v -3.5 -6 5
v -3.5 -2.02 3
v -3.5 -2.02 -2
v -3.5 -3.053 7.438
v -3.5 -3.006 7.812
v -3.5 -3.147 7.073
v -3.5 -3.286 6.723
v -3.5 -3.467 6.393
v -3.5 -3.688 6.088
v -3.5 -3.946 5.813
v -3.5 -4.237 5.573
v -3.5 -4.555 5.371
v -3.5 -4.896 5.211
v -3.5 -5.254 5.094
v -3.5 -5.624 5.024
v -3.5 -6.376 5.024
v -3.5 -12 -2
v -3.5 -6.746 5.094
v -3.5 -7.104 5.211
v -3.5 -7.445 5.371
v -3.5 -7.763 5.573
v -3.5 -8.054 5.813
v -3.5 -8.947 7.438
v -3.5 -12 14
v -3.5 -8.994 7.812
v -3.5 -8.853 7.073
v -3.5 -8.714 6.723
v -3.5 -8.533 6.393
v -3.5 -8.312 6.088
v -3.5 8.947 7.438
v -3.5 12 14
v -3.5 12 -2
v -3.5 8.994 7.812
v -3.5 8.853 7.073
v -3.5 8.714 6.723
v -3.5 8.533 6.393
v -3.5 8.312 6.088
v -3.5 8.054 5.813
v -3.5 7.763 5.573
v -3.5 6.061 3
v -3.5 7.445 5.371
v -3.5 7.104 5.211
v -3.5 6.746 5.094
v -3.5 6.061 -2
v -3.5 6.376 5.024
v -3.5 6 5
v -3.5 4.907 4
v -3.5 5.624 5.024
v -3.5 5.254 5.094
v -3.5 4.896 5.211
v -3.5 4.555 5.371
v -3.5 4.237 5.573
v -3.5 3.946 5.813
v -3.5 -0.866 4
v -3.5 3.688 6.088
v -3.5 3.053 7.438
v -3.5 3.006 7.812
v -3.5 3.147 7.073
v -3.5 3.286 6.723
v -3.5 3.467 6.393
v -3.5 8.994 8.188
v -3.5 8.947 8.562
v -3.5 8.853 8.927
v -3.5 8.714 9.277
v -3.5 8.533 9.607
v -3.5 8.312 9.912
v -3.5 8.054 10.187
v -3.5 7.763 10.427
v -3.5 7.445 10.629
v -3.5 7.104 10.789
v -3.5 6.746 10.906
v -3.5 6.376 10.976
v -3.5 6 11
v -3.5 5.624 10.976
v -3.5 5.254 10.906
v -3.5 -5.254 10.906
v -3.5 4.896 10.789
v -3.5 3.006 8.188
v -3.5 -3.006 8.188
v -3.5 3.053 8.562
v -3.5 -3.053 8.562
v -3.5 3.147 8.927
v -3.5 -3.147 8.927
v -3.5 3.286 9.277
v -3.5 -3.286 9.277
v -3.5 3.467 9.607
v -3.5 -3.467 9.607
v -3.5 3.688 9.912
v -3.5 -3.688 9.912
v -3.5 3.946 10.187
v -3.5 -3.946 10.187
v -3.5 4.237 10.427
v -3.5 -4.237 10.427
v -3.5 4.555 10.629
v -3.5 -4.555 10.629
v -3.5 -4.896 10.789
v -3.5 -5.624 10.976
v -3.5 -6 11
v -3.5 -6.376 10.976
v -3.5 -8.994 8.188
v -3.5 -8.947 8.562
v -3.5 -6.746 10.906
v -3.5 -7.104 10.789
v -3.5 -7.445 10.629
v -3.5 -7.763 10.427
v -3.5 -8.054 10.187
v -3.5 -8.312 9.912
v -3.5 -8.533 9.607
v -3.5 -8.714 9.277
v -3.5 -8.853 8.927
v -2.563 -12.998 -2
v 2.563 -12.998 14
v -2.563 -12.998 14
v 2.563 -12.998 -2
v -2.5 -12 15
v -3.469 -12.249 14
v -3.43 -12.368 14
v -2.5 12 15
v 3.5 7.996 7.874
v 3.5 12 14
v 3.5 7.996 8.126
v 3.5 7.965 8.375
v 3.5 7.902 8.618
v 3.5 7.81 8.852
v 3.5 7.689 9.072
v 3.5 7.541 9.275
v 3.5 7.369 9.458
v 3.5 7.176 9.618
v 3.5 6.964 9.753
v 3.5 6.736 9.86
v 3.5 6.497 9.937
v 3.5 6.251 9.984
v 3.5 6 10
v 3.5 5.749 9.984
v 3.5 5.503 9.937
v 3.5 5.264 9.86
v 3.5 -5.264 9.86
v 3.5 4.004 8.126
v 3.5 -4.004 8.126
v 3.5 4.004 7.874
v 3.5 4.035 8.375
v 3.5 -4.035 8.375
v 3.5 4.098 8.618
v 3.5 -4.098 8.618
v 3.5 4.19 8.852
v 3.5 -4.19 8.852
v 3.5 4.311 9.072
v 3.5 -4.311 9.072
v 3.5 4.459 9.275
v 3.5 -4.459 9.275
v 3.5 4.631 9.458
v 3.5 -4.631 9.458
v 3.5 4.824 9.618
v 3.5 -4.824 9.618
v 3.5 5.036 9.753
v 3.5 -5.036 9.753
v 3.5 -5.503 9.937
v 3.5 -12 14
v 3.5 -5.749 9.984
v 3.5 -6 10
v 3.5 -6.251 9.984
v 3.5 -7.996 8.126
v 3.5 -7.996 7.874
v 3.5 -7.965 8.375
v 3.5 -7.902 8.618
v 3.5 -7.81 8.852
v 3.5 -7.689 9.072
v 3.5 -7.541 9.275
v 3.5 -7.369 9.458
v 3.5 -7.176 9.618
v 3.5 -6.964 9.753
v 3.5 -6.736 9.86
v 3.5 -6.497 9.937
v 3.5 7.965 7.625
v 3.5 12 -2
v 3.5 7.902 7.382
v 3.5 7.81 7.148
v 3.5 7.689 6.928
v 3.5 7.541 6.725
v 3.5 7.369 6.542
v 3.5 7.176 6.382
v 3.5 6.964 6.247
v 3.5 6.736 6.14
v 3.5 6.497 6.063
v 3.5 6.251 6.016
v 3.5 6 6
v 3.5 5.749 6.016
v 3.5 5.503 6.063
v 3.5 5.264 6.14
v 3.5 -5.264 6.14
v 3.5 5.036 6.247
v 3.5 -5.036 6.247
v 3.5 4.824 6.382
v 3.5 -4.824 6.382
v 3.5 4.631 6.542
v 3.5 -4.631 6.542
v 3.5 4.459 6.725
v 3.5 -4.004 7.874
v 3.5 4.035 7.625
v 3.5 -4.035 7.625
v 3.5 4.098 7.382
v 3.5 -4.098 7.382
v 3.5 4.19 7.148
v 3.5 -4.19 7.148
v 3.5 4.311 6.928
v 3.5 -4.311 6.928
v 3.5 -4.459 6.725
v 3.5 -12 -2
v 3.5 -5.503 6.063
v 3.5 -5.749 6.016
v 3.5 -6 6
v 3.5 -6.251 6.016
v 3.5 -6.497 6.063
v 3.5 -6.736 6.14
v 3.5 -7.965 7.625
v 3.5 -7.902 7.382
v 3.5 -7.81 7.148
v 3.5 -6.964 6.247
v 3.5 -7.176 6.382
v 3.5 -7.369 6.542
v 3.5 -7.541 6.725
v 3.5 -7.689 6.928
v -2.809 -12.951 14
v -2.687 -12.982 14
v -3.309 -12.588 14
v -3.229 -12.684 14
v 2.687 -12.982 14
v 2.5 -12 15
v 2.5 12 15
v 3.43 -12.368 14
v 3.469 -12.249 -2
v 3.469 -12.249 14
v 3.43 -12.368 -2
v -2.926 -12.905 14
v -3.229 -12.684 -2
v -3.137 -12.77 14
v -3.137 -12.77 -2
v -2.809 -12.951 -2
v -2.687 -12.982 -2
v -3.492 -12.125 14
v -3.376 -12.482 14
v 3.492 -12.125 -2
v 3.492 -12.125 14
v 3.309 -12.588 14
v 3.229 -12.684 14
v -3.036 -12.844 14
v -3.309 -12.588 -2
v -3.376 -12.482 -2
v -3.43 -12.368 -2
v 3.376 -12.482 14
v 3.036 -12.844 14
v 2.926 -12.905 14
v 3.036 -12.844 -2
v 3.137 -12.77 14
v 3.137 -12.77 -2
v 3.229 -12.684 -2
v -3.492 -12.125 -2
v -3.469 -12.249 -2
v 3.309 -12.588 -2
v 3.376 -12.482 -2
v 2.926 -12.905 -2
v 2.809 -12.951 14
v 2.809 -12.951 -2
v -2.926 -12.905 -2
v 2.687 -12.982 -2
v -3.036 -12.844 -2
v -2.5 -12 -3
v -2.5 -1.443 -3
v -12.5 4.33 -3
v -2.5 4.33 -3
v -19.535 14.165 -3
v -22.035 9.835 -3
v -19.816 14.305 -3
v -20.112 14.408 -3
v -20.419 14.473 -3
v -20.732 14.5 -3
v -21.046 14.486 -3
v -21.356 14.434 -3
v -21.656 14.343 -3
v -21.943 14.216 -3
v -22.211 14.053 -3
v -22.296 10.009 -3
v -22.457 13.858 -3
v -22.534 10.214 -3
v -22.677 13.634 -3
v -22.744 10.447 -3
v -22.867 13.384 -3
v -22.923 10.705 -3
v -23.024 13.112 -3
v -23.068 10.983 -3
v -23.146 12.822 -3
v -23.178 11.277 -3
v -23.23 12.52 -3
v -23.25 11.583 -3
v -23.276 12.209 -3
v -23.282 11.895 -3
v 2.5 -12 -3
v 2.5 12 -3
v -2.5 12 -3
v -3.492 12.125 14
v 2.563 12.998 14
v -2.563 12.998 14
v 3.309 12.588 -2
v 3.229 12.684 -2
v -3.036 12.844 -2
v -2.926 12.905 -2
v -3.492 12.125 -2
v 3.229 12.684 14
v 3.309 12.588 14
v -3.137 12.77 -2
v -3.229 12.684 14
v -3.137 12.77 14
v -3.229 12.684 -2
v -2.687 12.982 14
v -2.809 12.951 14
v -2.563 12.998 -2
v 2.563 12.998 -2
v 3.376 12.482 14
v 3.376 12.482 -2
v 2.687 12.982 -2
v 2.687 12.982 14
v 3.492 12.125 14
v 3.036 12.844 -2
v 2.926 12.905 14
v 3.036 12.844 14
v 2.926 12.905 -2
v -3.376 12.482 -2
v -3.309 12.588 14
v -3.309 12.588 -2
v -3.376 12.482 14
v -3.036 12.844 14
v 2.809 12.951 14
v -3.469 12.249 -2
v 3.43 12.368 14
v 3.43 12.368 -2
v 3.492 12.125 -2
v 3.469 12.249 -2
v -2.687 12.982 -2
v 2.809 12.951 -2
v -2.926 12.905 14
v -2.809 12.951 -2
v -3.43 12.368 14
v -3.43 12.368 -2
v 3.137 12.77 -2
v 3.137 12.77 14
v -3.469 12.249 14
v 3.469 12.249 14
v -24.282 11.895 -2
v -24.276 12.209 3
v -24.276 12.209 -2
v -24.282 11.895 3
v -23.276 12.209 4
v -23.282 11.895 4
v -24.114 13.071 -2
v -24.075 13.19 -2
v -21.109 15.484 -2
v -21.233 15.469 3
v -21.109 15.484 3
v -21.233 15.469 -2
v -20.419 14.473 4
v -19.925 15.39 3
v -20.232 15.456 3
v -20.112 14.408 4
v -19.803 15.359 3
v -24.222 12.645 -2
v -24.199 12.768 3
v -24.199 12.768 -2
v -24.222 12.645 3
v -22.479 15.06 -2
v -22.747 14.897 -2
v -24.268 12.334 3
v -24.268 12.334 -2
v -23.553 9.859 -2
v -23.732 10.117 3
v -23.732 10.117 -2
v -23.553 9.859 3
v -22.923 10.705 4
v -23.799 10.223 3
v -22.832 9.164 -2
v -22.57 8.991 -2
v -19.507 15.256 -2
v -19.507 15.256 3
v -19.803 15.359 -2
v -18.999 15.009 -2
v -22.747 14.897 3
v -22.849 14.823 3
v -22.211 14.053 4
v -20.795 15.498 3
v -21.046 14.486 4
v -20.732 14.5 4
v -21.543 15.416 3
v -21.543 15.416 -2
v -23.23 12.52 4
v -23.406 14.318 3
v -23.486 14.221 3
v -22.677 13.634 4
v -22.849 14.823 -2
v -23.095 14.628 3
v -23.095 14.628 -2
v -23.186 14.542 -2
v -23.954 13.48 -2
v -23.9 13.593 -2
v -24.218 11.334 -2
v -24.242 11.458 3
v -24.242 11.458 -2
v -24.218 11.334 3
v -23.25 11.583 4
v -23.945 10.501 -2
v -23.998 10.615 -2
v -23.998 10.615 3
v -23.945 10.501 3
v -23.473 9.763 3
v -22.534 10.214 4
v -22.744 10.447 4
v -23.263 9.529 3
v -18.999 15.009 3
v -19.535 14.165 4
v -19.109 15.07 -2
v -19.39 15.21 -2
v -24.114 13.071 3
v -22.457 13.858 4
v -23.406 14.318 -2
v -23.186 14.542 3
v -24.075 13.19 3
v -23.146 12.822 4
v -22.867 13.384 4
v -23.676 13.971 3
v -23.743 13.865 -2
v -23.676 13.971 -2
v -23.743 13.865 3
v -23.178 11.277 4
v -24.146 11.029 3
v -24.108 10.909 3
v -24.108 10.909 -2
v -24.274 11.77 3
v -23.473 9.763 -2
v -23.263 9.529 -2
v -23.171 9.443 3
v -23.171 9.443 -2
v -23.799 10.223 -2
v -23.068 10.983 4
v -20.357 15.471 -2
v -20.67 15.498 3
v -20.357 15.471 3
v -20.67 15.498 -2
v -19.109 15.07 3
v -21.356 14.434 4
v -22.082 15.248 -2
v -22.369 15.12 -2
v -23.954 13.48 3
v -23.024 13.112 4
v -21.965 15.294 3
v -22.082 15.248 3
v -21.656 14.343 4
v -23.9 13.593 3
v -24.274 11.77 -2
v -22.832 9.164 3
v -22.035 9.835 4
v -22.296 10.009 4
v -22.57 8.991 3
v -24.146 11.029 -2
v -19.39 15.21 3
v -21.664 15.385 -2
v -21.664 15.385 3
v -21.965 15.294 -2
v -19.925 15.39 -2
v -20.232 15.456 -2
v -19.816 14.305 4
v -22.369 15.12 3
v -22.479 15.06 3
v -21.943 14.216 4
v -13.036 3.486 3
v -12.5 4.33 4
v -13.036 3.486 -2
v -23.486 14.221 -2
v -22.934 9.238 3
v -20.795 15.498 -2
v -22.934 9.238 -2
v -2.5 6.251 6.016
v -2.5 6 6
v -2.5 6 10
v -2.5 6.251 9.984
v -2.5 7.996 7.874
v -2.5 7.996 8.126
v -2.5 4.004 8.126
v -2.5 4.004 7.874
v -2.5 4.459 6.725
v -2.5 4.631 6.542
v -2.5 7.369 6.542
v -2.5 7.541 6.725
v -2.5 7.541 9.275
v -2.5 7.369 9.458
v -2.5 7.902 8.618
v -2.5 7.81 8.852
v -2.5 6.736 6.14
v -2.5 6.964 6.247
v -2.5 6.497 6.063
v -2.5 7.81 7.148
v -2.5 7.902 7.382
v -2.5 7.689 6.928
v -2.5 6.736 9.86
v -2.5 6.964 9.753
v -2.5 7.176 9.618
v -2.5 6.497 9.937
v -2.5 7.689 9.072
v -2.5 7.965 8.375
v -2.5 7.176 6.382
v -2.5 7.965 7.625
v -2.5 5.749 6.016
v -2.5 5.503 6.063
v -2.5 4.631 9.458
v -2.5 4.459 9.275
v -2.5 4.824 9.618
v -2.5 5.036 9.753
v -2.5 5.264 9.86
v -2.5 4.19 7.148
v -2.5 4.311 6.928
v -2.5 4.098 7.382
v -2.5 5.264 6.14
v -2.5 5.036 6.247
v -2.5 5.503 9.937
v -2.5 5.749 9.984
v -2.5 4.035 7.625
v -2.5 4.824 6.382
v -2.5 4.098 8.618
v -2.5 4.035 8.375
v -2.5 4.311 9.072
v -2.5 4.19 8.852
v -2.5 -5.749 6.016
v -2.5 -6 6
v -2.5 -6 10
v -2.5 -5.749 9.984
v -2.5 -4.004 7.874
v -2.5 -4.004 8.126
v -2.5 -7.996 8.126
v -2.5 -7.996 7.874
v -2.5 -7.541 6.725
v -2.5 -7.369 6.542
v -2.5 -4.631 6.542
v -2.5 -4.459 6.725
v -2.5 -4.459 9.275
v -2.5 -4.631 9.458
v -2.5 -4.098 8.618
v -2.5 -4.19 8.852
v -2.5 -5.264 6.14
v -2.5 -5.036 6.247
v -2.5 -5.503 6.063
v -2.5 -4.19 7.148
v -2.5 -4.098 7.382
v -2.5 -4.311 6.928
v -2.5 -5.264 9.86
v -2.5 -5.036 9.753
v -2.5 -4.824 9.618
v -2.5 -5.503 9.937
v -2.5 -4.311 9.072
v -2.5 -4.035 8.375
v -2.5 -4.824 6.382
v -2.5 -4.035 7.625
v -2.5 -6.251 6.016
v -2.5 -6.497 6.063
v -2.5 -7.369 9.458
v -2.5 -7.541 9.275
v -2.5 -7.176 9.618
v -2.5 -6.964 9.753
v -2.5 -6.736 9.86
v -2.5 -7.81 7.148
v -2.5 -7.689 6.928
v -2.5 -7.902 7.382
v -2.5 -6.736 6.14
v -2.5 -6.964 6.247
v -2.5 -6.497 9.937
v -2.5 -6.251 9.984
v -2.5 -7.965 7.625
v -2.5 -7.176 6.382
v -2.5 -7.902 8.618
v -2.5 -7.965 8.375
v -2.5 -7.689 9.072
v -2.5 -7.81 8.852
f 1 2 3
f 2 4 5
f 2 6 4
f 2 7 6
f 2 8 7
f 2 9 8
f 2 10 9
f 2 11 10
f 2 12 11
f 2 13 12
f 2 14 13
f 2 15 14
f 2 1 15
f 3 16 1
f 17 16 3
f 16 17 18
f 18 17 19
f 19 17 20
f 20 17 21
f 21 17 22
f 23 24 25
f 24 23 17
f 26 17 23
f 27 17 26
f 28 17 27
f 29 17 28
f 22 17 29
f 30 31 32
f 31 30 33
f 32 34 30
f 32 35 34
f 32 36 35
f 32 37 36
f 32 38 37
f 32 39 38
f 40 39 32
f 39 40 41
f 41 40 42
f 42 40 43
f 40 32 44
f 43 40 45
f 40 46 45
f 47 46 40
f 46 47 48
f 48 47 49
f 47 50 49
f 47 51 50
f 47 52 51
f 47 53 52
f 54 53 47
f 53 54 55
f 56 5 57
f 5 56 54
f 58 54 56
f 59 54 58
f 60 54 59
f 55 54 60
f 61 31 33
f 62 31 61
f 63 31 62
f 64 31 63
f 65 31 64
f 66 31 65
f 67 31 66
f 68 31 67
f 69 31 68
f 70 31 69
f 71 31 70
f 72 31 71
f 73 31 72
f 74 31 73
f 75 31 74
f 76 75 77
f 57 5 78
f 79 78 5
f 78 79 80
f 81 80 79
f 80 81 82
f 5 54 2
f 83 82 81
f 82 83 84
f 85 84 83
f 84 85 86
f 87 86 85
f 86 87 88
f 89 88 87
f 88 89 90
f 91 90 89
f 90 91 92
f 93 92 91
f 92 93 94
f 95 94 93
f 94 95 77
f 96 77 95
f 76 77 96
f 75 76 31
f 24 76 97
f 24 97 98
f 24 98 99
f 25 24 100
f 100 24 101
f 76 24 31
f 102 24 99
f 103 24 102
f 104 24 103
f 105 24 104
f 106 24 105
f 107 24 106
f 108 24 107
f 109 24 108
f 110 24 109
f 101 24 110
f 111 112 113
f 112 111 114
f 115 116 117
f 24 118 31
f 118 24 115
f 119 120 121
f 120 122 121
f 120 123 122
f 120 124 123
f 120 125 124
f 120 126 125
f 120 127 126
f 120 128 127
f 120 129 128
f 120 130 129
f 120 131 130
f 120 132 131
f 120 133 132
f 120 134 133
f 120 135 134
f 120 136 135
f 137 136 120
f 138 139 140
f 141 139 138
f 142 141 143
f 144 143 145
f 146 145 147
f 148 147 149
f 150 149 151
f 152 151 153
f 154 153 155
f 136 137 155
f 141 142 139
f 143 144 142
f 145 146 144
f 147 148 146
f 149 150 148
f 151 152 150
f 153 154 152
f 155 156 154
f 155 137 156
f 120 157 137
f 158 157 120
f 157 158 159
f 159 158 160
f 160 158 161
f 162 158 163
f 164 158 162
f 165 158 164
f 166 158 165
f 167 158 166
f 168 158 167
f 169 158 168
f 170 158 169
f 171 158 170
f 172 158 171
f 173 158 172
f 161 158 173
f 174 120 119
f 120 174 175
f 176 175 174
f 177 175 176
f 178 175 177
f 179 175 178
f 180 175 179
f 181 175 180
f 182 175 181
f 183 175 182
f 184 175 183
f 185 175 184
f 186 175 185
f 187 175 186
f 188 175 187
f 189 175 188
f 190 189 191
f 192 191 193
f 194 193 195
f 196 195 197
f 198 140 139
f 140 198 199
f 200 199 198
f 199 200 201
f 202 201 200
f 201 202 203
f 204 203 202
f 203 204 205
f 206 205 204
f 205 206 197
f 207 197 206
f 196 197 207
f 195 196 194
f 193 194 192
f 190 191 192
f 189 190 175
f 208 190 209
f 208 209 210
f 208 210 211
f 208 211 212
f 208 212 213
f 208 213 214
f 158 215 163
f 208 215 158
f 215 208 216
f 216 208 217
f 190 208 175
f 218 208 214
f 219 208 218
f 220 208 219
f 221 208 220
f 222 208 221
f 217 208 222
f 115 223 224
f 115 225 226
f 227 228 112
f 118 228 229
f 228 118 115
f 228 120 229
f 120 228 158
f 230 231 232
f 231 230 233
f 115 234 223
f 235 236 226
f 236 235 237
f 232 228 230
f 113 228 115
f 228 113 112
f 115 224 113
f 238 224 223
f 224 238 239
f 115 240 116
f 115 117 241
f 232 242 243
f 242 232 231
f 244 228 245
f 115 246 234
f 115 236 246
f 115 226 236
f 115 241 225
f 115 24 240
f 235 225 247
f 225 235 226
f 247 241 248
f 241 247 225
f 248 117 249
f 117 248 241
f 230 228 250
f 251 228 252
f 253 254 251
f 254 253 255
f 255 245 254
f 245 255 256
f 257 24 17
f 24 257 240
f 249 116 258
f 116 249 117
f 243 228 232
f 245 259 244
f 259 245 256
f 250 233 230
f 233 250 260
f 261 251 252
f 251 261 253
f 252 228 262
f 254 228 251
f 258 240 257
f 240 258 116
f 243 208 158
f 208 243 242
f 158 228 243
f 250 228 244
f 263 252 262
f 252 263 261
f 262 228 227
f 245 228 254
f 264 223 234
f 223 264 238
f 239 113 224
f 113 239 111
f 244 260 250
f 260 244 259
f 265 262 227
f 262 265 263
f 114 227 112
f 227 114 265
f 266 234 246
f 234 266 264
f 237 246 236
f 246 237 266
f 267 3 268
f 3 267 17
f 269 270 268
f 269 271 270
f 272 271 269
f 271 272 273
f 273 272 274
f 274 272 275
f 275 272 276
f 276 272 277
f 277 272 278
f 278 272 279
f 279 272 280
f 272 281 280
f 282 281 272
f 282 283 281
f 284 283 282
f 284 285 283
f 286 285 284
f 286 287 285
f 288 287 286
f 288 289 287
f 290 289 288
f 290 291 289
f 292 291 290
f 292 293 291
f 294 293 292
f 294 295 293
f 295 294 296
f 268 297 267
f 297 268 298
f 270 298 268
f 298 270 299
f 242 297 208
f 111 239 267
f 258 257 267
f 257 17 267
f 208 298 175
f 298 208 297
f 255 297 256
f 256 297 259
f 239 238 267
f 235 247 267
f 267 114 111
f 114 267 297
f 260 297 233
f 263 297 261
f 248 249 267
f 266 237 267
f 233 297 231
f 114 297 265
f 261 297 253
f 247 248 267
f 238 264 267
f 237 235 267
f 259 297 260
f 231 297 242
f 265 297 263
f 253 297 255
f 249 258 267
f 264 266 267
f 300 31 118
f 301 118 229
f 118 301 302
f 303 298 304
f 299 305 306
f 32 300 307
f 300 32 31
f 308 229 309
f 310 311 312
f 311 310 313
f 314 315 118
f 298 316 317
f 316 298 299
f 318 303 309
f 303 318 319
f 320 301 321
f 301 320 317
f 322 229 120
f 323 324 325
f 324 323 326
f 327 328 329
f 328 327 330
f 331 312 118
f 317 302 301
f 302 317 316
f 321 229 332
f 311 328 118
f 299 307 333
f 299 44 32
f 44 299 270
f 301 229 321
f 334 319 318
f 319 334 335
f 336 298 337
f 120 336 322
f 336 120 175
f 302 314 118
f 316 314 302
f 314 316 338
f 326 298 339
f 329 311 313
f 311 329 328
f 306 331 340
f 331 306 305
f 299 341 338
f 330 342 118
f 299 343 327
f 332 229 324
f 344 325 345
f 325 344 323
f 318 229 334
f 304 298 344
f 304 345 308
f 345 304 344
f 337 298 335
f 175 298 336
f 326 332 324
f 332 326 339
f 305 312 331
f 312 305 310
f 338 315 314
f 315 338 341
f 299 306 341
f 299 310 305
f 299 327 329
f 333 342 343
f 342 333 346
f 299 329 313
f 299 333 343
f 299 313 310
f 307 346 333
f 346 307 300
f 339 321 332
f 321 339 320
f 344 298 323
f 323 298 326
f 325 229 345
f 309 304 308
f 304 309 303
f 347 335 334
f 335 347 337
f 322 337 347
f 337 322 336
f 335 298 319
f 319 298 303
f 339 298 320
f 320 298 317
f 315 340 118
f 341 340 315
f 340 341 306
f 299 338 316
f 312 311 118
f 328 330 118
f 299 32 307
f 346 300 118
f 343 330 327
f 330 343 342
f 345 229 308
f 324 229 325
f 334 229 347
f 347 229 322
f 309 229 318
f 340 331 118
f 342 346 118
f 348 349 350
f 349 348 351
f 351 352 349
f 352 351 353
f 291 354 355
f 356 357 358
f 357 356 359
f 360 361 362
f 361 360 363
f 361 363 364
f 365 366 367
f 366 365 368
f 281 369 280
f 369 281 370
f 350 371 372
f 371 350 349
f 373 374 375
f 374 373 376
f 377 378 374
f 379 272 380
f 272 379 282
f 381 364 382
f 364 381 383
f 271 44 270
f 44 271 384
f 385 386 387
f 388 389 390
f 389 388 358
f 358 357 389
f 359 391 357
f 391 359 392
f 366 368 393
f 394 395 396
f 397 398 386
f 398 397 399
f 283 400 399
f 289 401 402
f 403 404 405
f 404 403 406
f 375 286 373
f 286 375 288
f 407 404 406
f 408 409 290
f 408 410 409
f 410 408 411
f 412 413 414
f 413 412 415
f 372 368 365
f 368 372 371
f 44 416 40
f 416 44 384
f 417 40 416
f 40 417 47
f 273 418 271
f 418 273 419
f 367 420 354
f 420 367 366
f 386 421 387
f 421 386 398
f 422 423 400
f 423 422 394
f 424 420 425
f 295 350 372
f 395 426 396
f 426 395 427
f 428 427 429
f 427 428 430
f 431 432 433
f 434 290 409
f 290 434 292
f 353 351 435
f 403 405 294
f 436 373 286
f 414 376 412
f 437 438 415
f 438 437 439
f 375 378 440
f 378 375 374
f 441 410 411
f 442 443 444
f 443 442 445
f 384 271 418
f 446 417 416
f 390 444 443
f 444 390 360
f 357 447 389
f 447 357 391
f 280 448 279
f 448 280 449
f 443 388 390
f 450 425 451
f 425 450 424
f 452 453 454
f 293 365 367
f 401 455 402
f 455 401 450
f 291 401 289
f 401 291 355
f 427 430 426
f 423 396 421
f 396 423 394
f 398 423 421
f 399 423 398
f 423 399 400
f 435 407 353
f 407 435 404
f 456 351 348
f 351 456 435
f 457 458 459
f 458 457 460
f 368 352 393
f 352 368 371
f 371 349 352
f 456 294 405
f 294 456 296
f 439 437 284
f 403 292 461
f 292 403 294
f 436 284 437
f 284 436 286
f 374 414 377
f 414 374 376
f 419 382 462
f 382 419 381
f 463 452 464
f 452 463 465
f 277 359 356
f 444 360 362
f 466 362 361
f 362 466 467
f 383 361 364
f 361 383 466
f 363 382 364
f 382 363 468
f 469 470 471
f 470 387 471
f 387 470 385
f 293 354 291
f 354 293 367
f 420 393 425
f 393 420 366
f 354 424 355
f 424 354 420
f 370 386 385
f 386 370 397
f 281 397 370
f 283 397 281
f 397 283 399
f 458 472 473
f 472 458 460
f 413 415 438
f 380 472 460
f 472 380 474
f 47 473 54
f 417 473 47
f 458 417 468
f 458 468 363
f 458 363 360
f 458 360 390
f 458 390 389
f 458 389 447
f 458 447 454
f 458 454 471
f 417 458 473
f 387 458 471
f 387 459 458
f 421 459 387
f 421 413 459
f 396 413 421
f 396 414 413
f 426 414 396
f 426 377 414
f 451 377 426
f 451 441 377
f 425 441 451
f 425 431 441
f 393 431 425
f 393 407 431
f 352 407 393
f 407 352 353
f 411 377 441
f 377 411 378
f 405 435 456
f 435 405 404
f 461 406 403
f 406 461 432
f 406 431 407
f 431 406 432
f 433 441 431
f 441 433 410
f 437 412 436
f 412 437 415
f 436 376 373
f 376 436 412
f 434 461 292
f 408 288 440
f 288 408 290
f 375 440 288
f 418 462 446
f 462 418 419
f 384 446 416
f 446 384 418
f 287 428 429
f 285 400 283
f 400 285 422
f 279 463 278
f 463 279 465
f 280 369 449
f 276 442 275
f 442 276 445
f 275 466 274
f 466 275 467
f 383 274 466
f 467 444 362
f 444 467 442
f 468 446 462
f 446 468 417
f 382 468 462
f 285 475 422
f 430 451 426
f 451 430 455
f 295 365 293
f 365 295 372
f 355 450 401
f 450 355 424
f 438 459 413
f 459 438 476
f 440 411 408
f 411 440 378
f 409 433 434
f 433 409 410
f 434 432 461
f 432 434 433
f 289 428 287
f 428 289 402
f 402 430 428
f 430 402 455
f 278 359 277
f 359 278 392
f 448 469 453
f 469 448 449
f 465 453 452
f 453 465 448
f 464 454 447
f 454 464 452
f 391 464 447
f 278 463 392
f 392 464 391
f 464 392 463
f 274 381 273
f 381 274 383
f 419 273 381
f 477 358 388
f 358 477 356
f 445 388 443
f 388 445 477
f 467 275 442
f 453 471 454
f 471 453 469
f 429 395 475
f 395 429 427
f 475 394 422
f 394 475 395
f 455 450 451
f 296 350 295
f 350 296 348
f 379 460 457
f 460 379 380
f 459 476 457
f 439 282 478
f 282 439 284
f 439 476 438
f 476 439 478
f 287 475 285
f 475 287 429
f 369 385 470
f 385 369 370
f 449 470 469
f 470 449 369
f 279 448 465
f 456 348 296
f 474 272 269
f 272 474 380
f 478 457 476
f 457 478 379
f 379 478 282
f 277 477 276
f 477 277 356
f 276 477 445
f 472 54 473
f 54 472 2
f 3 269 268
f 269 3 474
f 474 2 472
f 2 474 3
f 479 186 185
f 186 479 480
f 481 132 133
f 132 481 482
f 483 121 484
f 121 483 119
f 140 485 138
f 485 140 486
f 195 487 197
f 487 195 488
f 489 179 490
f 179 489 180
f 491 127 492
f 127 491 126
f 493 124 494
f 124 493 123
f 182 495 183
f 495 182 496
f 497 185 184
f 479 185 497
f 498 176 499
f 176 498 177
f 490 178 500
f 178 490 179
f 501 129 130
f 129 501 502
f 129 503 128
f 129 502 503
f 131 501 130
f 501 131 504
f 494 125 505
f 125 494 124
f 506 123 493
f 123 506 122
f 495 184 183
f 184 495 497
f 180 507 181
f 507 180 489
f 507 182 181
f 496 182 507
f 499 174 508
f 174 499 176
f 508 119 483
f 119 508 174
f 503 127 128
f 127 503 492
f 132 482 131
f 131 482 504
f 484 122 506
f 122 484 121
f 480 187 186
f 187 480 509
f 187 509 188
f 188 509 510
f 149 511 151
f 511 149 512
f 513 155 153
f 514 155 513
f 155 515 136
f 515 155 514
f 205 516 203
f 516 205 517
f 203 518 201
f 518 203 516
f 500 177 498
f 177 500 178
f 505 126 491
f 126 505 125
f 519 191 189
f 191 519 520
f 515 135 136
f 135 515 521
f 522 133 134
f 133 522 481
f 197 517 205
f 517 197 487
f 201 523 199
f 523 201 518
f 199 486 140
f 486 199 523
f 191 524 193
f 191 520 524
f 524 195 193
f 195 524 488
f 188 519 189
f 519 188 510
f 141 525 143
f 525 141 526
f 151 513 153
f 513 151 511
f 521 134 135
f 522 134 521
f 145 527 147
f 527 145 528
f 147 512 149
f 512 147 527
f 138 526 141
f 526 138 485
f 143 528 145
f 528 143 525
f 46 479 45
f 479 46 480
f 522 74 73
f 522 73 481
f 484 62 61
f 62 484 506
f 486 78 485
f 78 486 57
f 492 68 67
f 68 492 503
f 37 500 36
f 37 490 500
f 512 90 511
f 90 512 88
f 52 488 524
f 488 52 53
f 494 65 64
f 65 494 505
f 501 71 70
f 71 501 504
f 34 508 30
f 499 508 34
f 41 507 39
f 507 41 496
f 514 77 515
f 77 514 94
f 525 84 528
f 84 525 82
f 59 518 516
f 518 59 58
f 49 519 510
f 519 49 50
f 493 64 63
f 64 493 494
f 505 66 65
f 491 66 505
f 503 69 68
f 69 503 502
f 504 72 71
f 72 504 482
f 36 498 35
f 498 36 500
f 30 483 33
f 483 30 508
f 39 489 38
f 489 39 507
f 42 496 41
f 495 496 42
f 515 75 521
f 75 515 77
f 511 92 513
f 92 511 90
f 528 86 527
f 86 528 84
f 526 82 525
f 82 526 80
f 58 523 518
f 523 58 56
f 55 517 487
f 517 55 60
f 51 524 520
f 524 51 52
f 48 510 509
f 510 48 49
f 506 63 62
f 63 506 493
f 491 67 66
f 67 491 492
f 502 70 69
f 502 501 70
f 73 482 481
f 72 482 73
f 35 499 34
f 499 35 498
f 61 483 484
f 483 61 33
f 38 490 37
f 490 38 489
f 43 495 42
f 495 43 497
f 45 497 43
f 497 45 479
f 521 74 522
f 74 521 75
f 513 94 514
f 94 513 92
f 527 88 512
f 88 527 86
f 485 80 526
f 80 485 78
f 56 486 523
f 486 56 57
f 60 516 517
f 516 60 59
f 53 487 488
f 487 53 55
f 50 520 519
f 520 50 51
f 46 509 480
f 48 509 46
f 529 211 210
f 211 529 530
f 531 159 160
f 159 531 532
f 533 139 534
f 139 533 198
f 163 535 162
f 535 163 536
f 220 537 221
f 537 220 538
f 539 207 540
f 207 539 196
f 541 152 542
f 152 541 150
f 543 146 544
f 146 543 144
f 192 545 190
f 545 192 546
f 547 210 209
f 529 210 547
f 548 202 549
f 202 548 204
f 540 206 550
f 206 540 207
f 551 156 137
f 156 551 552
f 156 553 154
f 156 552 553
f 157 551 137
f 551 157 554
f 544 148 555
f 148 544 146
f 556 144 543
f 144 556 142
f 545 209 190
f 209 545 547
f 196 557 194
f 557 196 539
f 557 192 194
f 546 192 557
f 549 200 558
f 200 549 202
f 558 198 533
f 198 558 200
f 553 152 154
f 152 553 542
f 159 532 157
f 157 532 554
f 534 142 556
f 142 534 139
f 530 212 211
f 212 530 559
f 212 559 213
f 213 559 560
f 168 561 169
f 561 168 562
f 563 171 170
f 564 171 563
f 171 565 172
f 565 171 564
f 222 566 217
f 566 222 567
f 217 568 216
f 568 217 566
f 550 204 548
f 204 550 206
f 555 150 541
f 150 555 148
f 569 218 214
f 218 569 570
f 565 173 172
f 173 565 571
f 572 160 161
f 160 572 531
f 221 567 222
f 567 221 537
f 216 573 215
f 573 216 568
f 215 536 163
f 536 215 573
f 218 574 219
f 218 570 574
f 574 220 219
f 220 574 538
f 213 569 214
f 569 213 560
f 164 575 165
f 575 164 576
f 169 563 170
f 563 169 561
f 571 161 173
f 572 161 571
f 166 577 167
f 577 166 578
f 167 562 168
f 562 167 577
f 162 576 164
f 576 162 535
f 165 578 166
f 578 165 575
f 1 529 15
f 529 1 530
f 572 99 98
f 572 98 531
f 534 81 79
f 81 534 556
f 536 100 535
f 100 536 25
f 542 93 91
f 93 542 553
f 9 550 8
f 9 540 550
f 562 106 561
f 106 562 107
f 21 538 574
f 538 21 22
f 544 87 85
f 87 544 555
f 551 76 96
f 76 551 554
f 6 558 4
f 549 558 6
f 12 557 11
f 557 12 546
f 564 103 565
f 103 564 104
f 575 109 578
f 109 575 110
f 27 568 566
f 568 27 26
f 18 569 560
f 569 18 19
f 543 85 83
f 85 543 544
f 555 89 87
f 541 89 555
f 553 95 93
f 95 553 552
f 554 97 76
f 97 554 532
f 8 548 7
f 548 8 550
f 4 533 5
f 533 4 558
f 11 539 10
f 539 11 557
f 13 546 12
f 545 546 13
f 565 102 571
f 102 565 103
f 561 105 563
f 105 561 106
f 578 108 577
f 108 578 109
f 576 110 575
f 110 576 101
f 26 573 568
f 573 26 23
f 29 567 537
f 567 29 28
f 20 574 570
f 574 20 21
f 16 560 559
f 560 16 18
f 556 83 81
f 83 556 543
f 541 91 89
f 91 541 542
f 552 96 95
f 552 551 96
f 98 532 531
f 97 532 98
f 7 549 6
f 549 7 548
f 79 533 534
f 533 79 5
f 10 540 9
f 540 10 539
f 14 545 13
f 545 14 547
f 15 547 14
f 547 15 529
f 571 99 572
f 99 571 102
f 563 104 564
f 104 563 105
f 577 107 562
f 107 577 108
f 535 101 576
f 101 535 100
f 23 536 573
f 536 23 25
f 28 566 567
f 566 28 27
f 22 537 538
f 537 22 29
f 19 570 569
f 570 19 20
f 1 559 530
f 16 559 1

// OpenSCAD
// a small, simple hook that accepts two drywall screws as anchors.

$fn = 50;
difference(){
    minkowski(){ // add vertical fillets and horizontal chamfers
        union(){
            // arm of hook
            rotate([0, 0, 60]) translate([0, 24, 0]) union(){
                translate([0, -12, 0]) cube([5, 24, 5], center=true);
                cylinder(5, 2.5, 2.5, center=true);
            }
            // body of hook
            translate([0, 0, 5.5]) cube([5, 24, 16], center=true);
        }
        // buck for minkowski function
        union(){
            translate([0, 0, .5]) cylinder(1, 1, 0);
            translate([0, 0, -.5]) cylinder(1, 0, 1);
        };
    }
    // +Y screw hole
    translate([5.5, 6, 8]) rotate([0, 90, 0]) union() {
        cylinder(20, 2, 2, center=true);
        translate([0, 0, -8])cylinder(4, 4, 0, center=true);
    }
    // -Y screw hole
    translate([5.5, -6, 8]) rotate([0, 90, 0]) union() {
        cylinder(20, 2, 2, center=true);
        translate([0, 0, -8])cylinder(4, 4, 0, center=true);
    }
}
